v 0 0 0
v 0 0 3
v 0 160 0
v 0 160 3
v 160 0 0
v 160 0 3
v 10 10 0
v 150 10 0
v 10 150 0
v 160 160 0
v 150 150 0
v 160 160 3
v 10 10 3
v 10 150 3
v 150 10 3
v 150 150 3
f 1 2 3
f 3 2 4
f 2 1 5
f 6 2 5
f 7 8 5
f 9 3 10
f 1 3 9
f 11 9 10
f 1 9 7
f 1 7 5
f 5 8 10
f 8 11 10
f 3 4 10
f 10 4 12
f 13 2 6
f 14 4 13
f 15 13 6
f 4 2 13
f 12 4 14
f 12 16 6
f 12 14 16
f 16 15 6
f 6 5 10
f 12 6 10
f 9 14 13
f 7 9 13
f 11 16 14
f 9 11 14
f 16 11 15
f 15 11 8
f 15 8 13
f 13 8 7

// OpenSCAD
// file: NSParams.scad
//
// box for Night Sky Orb LED clock
//   designed by: Terry Nielsen
//
//   Parameter File
//

//
// box parameters
//

// Square box of this size in mm

// test: box_width = 70;
box_width = 160;

// box is this deep in mm

// test: box_depth = 20;
box_depth = 40;

// box has walls this thick in mm
wall_thickness=5;

// box has corner braces this size in mm
corner_size = 15;

// make lip on decorative frame of front of panel
lip_width = 10;
lip_thickness = 3;

// front panel is this thick in mm
panel_thickness=5;

// back panel is this thick in mm
back_panel_thickness = 3;

// corner braces are recessed from the back
corner_recess=back_panel_thickness + 2;

//
// LED parameters
//

// number of LEDs in row:

// test: led_row_count = 2;
led_row_count = 8;
led_col_count = led_row_count; // make it a square grid

// LED hole resolution

led_resolution = 20;

// LED holes have this diamter in mm
led_hole_back_dia=5;

// make this bigger to make hole wider at front of panel
led_hole_front_dia=led_hole_back_dia*2;

// LED holes are spaced this far apart in the grid in mm
led_hole_spacing=15;

// LED grid hole pattern is offset from the sides this far:
led_hole_pattern_offset = 
    (box_width-led_hole_spacing*(led_row_count-1))/2;

//
// End of parameters
//
// main file
//
// box for Night Sky Orb LED clock
//   designed by: Terry Nielsen
//

include <NSParams.scad>

// A simple decorative frame to go on front panel

// draw box lip
difference() {
   cube(size=[box_width,box_width,lip_thickness]);
   translate([lip_width,lip_width,0])
      cube(size=[box_width-lip_width*2,
                 box_width-lip_width*2,
                 lip_thickness]);
}
